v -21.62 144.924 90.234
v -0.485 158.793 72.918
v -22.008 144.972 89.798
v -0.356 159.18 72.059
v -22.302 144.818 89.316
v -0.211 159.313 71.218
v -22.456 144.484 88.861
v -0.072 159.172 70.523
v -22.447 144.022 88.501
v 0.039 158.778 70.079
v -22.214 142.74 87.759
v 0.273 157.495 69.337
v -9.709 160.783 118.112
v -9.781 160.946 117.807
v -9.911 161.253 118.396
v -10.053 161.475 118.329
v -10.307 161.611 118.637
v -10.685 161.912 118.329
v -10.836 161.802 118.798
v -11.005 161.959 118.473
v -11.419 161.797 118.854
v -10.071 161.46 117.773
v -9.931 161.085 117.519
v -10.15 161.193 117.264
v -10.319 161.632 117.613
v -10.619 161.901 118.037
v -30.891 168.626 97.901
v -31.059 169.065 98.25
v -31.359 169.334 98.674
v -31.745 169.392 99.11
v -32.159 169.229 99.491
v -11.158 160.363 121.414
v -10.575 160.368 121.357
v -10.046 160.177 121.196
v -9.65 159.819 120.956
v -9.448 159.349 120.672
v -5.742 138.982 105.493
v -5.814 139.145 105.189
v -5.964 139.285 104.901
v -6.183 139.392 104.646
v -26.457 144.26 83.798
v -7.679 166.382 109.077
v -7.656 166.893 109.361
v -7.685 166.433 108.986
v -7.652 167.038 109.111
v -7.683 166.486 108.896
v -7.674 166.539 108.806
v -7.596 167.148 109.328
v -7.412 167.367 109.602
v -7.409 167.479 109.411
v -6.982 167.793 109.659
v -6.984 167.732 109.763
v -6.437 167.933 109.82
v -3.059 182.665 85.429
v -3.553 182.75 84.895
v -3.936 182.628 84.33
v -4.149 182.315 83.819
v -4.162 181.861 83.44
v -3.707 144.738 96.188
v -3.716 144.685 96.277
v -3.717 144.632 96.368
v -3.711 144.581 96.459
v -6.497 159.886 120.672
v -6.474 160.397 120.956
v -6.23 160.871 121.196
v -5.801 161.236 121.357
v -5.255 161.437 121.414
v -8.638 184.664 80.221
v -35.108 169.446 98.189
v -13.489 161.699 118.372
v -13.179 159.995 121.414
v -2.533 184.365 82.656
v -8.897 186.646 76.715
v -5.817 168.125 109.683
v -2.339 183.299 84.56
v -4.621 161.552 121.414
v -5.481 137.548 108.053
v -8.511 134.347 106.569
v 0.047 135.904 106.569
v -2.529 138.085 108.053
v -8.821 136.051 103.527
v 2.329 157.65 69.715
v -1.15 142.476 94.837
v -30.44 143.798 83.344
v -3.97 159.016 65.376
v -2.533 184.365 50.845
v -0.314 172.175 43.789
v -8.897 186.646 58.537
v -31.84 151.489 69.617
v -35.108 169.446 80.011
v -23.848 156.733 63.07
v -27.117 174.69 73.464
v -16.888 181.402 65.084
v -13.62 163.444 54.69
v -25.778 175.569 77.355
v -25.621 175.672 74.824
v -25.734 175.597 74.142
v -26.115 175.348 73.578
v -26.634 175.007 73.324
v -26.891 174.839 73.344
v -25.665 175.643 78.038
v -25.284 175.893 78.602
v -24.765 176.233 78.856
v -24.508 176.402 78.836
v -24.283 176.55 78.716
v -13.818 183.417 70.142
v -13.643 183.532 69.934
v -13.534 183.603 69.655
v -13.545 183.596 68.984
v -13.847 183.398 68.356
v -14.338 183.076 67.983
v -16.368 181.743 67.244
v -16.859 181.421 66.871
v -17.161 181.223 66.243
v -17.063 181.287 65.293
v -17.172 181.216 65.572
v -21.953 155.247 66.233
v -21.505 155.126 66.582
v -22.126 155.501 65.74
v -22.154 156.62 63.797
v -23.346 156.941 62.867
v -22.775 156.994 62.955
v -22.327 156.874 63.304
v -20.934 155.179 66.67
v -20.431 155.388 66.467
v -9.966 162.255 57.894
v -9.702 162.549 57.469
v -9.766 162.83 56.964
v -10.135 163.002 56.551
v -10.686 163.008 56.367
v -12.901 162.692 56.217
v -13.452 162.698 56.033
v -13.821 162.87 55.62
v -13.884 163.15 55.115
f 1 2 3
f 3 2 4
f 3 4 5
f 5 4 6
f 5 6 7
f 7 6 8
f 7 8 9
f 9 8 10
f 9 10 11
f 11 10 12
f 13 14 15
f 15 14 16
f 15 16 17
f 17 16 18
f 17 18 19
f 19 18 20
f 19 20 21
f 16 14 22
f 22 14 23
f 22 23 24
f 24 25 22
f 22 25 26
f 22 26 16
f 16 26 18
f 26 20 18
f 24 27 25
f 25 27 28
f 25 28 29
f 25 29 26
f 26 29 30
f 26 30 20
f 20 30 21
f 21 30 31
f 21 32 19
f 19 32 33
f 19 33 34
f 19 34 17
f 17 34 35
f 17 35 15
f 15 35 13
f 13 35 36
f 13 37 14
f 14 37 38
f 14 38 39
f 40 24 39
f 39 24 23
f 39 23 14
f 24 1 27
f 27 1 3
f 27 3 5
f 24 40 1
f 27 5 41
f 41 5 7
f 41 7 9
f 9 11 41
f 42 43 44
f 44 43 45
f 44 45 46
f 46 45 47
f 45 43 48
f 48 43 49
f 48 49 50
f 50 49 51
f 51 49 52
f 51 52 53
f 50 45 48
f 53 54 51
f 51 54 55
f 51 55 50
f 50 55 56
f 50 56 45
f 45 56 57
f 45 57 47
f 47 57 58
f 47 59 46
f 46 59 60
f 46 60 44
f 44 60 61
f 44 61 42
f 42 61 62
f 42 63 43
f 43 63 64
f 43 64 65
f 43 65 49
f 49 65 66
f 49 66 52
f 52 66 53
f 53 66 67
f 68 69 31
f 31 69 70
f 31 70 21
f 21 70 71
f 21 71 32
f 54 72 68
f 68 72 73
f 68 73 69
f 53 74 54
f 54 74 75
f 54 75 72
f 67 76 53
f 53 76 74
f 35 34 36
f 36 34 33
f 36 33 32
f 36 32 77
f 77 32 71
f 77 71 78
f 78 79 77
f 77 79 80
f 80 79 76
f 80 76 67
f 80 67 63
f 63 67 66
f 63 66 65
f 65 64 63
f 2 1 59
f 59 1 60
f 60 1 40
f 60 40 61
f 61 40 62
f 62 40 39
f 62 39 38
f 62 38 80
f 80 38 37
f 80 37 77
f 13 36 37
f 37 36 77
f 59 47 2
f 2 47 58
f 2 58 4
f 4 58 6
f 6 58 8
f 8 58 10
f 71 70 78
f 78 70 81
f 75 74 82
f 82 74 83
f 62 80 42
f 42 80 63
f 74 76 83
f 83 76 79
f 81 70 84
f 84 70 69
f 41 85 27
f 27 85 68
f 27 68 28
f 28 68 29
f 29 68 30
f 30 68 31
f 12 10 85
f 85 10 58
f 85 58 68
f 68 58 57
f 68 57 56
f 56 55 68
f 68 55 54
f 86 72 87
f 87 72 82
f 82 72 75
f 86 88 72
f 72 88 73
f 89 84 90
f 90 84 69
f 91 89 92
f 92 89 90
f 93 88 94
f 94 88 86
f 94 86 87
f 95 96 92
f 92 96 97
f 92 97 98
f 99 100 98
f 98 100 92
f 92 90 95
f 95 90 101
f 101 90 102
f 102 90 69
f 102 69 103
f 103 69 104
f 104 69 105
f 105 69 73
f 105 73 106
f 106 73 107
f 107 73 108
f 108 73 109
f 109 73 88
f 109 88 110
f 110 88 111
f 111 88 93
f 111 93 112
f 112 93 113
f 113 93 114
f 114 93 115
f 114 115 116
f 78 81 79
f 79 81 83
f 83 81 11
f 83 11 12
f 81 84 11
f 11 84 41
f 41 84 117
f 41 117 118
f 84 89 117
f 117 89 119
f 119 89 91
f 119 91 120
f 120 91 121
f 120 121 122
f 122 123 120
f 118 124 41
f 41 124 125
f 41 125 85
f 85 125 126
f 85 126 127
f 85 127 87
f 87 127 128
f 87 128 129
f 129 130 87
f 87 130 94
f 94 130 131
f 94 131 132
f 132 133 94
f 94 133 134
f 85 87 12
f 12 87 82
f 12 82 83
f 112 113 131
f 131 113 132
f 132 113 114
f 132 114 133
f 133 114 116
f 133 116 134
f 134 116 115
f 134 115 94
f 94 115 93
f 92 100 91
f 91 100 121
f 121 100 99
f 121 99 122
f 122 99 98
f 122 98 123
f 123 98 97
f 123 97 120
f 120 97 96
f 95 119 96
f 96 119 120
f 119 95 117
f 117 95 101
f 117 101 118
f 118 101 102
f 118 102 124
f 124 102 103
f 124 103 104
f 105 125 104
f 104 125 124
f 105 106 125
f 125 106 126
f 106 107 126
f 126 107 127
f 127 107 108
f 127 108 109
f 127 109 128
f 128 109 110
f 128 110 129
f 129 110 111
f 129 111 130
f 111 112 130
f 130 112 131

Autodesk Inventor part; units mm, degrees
sketch3d "3D Sketch1"
ref_plane "Work Plane1" through (-0.0056, 14.7303, 11.9873) normal (-1, 0, 0) x (0, 0, -1)
ref_plane "Work Plane2" through (-2.9108, 16.1551, 9.4021) normal (-0.7071068, 0.2534044, -0.6601411) x (0.1555934, -0.854939, -0.4948434)
sketch "Sketch2" plane through (-2.9108, 16.1551, 9.4021) normal (-0.7071068, 0.2534044, -0.6601411) x (0.1555934, -0.854939, -0.4948434)
  line L0 (-180, 0) -> (0, 0)
  line L1 (0, 0) -> (0, -32)
  line L2 (0, -32) -> (-180, -32)
  line L3 (-180, -32) -> (-180, 0)
  line L4 (3, -35) -> (-180, -35)
  line L5 (-180, -35) -> (-180, 3)
  line L6 (-180, 3) -> (3, 3)
  line L7 (3, 3) -> (3, -35)
  line L8 (-180, 0.3) -> (0.2, 0.3)
  line L9 (0.2, 0.3) -> (0.2, -32.3)
  line L10 (0.2, -32.3) -> (-180, -32.3)
  line L11 (-180, -32.3) -> (-180, 0.3)
  point P0 (-180, 0)
  dimension "d1" = 180
  dimension "d2" = 32
  dimension "d5" = 3
  dimension "d6" = 3
  dimension "d7" = 3
  dimension "d13" = 0.2
  dimension "d14" = 0.3
  dimension "d15" = 0.3
extrude "Extrusion1" add sketch "Sketch2" along normal blind 3
extrude "Extrusion3" add sketch "Sketch2" against normal blind 6 contours L5 L6 L7 L4 L10 L9 L8
ref_plane "Work Plane3" through (19.5768, 30.1922, -13.8415) normal (0, 0, 1) x (1, 0, 0)
sketch "Sketch4" plane through (-3.0866, 15.8483, 9.4727) normal (-0.1555934, 0.854939, 0.4948434) x (0.7071068, -0.2534044, 0.6601411)
  line L0 (0, 0) -> (0, 32.6) projected
  line L1 (0, 0) -> (6, 0) projected
  line L2 (6, 32.6) -> (6, 0) projected
  line L3 (0, 32.6) -> (6, 32.6) projected
  line L4 (5, 32.6) -> (6, 32.0226)
  point P0 (-0.0547, 0.3088)
  dimension "d18" = 5
  dimension "d20" = 30
extrude "Extrusion4" [suppressed]
sketch "Sketch5" plane through (19.5768, 30.1922, -13.8415) normal (0, 0, 1) x (1, 0, 0)
  line L0 (-26.2115, -17.1996) -> (-54.6851, 139.2543) projected
  line L1 (-19.8475, -19.4802) -> (-26.2115, -17.1996) projected
  line L2 (-19.8475, -19.4802) -> (6.364, -2.2806) projected
  line L3 (6.364, -2.2806) -> (-22.1096, 154.1732) projected
  line L4 (-54.6851, 139.2543) -> (-28.4736, 156.4538) projected
  line L5 (-28.4736, 156.4538) -> (-22.1096, 154.1732) projected
  point P0 (-19.5768, -30.1922)
extrude "Extrusion5" add sketch "Sketch5" along normal up to next
sketch "Sketch6" plane through (-2.9108, 16.1551, 9.4021) normal (0.7071068, -0.2534044, 0.6601411) x (0.6897758, 0.4526207, -0.5651051)
  line L0 (13.5, 135.3) -> (29, 135.3)
  line L1 (13.5, 109.3) -> (13.5, 135.3)
  line L2 (11.5, 109.3) -> (13.5, 109.3)
  line L3 (11.5, 77.3) -> (11.5, 109.3)
  line L4 (9.5, 77.3) -> (11.5, 77.3)
  line L5 (9.5, 45.3) -> (9.5, 77.3)
  line L6 (6.25, 45.3) -> (9.5, 45.3)
  line L7 (6.25, 2.8) -> (6.25, 45.3)
  line L8 (29, 2.8) -> (6.25, 2.8)
  line L9 (29, 135.3) -> (29, 2.8)
  line L10 (32, 0) -> (32, 180) projected
  line L11 (0, 0) -> (32, 0) projected
  line L12 (32.3, 180) -> (32.3, -0.2) projected
  line L13 (32.3, -0.2) -> (29, -0.2)
  line L14 (29, -0.2) -> (29, 2.8)
  line L15 (29, 2.8) -> (32.3, 2.8)
  line L16 (32.3, 2.8) -> (32.3, -0.2)
  point P0 (0.0088, -18.9171)
  dimension "d25" = 3
  dimension "d26" = 3.3
sketch "Sketch8" plane through (19.5768, 30.1922, -13.8415) normal (0, 0, -1) x (-1, 0, 0)
  line L0 (0.1767, 0.4115) -> (28.2147, 154.4716) projected
  line L1 (50.7014, 139.7161) -> (28.2147, 154.4716) projected
  line L2 (50.7014, 139.7161) -> (22.6634, -14.3439) projected
  line L3 (22.6634, -14.3439) -> (0.1767, 0.4115) projected
  line L4 (18.6122, -8.8144) -> (25.2249, 27.5205) projected
  line L5 (2.9198, 1.4827) -> (18.6122, -8.8144) projected
  line L6 (23.5359, 114.7621) -> (2.9198, 1.4827) projected
  line L7 (25.2249, 27.5205) -> (22.9831, 28.9915) projected
  line L8 (22.9831, 28.9915) -> (27.9621, 56.3496) projected
  line L9 (26.5826, 57.2548) -> (31.5615, 84.6129) projected
  line L10 (27.9621, 56.3496) -> (26.5826, 57.2548) projected
  line L11 (30.182, 85.5181) -> (34.2274, 107.7465) projected
  line L12 (31.5615, 84.6129) -> (30.182, 85.5181) projected
  line L13 (34.2274, 107.7465) -> (23.5359, 114.7621) projected
  line L14 (26.6416, 26.5909) -> (9.5325, 37.8176)
  line L15 (9.5325, 37.8176) -> (7.338, 34.4733)
  line L16 (7.338, 34.4733) -> (24.4471, 23.2466)
  line L17 (24.4471, 23.2466) -> (26.6416, 26.5909)
  line L18 (29.3788, 55.42) -> (27.1843, 52.0757)
  line L19 (27.1843, 52.0757) -> (12.317, 61.8314)
  line L20 (12.317, 61.8314) -> (14.5115, 65.1757)
  line L21 (14.5115, 65.1757) -> (29.3788, 55.42)
  line L22 (32.9782, 83.6833) -> (30.7837, 80.339)
  line L23 (30.7837, 80.339) -> (17.296, 89.1894)
  line L24 (17.296, 89.1894) -> (19.4905, 92.5337)
  line L25 (19.4905, 92.5337) -> (32.9782, 83.6833)
  point P0 (19.5768, -30.1922)
  point P1 (18.7127, 88.2598)
  point P2 (13.7337, 60.9018)
  point P3 (8.7547, 33.5437)
  dimension "d27" = 4
  dimension "d28" = 4
  dimension "d29" = 4
extrude "Extrusion6" cut sketch "Sketch8" against normal through all contours L5 L6 L16 L4 | L14 L6 L19 L8 | L6 L23 L9 L21 | L6 L13 L11 L25
ref_plane "Work Plane4" through (-13.5174, 19.9562, -0.5) normal (0.7071068, -0.2534044, 0.6601411) x (0.6897758, 0.4526207, -0.5651051)
ref_plane "Work Plane6" through (-26.4567, 144.2602, 83.7981) normal (-0.1555934, 0.854939, 0.4948434) x (0.7071068, -0.2534044, 0.6601411)
split body "Split1" result two bodies by plane through (-26.4567, 144.2602, 83.7981) normal (-0.1555934, 0.854939, 0.4948434) first body at (-13.9482, 171.37, 41.9041)
split body "Split2" result two bodies by plane through (-13.5174, 19.9562, -0.5) normal (0.7071068, -0.2534044, 0.6601411) bodies 2 first body at (-22.4266, 166.4041, 87.2241)
sketch "Sketch9" plane through (-26.4567, 144.2602, 83.7981) normal (-0.1555934, 0.854939, 0.4948434) x (0.7071068, -0.2534044, 0.6601411)
  line L0 (-15, 7.5724) -> (-15, 45.5724) projected
  line L1 (-13.2929, 19.8653) -> (-11.7071, 18.2796)
  line L2 (-10, 18.9867) -> (-10, 34.1582)
  line L3 (-11.7071, 34.8653) -> (-13.2929, 33.2796)
  arc A0 (-11.7071, 18.2796) -> (-10, 18.9867) centre (-11, 18.9867) ccw
  arc A1 (-10, 34.1582) -> (-11.7071, 34.8653) centre (-11, 34.1582) ccw
  line L4 (-15, 7.5724) -> (-15, 45.5724) projected
  line L5 (-15, 7.5724) -> (-3, -2.7) projected
  line L6 (-3, -2.7) -> (-3, 35.3) projected
  line L7 (-15, 45.5724) -> (-3, 35.3) projected
  line L8 (-15, 45.5724) -> (-15, 53.2768) projected
  line L9 (-15, 45.5724) -> (-3, 35.3) projected
  line L10 (-3, 35.3) -> (6, 35.3) projected
  line L11 (-15, 53.2768) -> (6, 35.3) projected
  line L12 (0, 0) -> (0, 32.6) projected
  line L13 (0, 32.6) -> (6, 32.6) projected
  line L14 (6, 35.3) -> (6, 32.6) projected
  line L15 (-3, 35.3) -> (6, 35.3) projected
  line L16 (-3, -2.7) -> (-3, 35.3) projected
  line L17 (6, -2.7) -> (-3, -2.7) projected
  line L18 (6, 0) -> (6, -2.7) projected
  line L19 (0, 0) -> (6, 0) projected
  line L20 (-15, 45.5724) -> (-15, 53.2768) projected
  line L21 (-34.0212, 69.5596) -> (-15, 53.2768) projected
  line L22 (-15, 33.9867) -> (-15, 53.2768)
  line L23 (-15, 19.1582) -> (-15, 7.5724)
  arc A2 (-13.2929, 19.8653) -> (-15, 19.1582) centre (-14, 19.1582) ccw
  arc A3 (-15, 33.9867) -> (-13.2929, 33.2796) centre (-14, 33.9867) ccw
  line L24 (-15.3, 53.5336) -> (-15.3, 33.9867)
  arc A4 (-15.3, 33.9867) -> (-13.0808, 33.0674) centre (-14, 33.9867) ccw
  line L25 (-13.0808, 33.0674) -> (-11.495, 34.6532)
  arc A5 (-10.3, 34.1582) -> (-11.495, 34.6532) centre (-11, 34.1582) ccw
  line L26 (-10.3, 34.1582) -> (-10.3, 18.9867)
  arc A6 (-11.495, 18.4917) -> (-10.3, 18.9867) centre (-11, 18.9867) ccw
  line L27 (-11.495, 18.4917) -> (-13.0808, 20.0775)
  arc A7 (-13.0808, 20.0775) -> (-15.3, 19.1582) centre (-14, 19.1582) ccw
  line L28 (-15.3, 19.1582) -> (-15.3, 7.8293)
  line L29 (-43.0212, 31.5596) -> (-15, 7.5724) projected
  point P0 (-0.0547, 0.3088)
  point P1 (-15, 21.5724)
  point P2 (-10, 16.5724)
  point P3 (-10, 36.5724)
  point P4 (-15, 31.5724)
  point P5 (-15, 33.9867)
  point P6 (-15, 45.5724)
  point P7 (-15, 33.156)
  point P8 (-15, 19.9889)
  dimension "d35" = 45
  dimension "d36" = 45
  dimension "d37" = 20
  dimension "d38" = 5
  dimension "d40" = 10
  dimension "d41" = 38
  dimension "d42" = 14
  dimension "d47" = 1
  dimension "d48" = 1
  dimension "d49" = 0.3
extrude "Extrusion7" cut sketch "Sketch9" along normal through all contours L29 L28 A7 L0 | L0 A7 L27 A6 L26 A5 L25 A4 A3 L3 A1 L2 A0 L1 A2 | A4 L24 L21 L8 L0 bodies 4 5
sketch "Sketch11" plane through (-26.4567, 144.2602, 83.7981) normal (-0.1555934, 0.854939, 0.4948434) x (0.7071068, -0.2534044, 0.6601411)
  line L0 (34.4958, 0.0029) -> (24.2403, 8.7821)
  line L1 (24.2403, 8.7821) -> (25.6343, 10.4105)
  line L2 (25.6343, 10.4105) -> (35.8898, 1.6314)
  line L3 (35.8898, 1.6314) -> (34.4958, 0.0029)
  line L4 (32.5449, -2.2761) -> (29.886, 0)
  line L5 (29.886, 0) -> (27.5747, -2.7)
  line L6 (27.5747, -2.7) -> (30.2336, -4.9761)
  line L7 (30.2336, -4.9761) -> (32.5449, -2.2761)
  line L8 (34.4958, 0.0029) -> (32.5449, -2.2761)
  line L9 (-11.495, 18.4917) -> (-13.0808, 20.0775) projected
  arc A0 (-15, 19.9889) -> (-15.3, 19.1582) centre (-14, 19.1582) ccw projected
  line L10 (-15, 33.156) -> (-15, 19.9889) projected
  arc A1 (-15.3, 33.9867) -> (-15, 33.156) centre (-14, 33.9867) ccw projected
  line L11 (-13.0808, 33.0674) -> (-11.495, 34.6532) projected
  arc A2 (-10.3, 34.1582) -> (-11.495, 34.6532) centre (-11, 34.1582) ccw projected
  line L12 (-10.3, 34.1582) -> (-10.3, 18.9867) projected
  arc A3 (-11.495, 18.4917) -> (-10.3, 18.9867) centre (-11, 18.9867) ccw projected
  line L13 (6, -2.7) -> (-3, -2.7) projected
  line L14 (-3, -2.7) -> (-43.0212, 31.5596) projected
  line L15 (-15, 7.5724) -> (-15, 19.1582) projected
  arc A4 (-13.2929, 19.8653) -> (-15, 19.1582) centre (-14, 19.1582) ccw projected
  line L16 (-13.2929, 19.8653) -> (-11.7071, 18.2796) projected
  arc A5 (-11.7071, 18.2796) -> (-10, 18.9867) centre (-11, 18.9867) ccw projected
  line L17 (-10, 18.9867) -> (-10, 34.1582) projected
  arc A6 (-10, 34.1582) -> (-11.7071, 34.8653) centre (-11, 34.1582) ccw projected
  line L18 (-11.7071, 34.8653) -> (-13.2929, 33.2796) projected
  arc A7 (-15, 33.9867) -> (-13.2929, 33.2796) centre (-14, 33.9867) ccw projected
  line L19 (-15, 33.9867) -> (-15, 53.2768) projected
  line L20 (-34.0212, 69.5596) -> (6, 35.3) projected
  line L21 (6, 35.3) -> (6, 32.6) projected
  line L22 (6, 32.6) -> (0, 32.6) projected
  line L23 (0, 32.6) -> (0, 0) projected
  line L24 (0, 0) -> (6, 0) projected
  line L25 (6, 0) -> (6, -2.7) projected
  line L26 (-15.3, 19.1582) -> (-15.3, 7.8293) projected
  line L27 (-15.3, 53.5336) -> (-15.3, 33.9867) projected
  line L28 (-3, 35.3) -> (6, 35.3) projected
  line L29 (0, 32.6) -> (6, 32.6) projected
  line L30 (0, 0) -> (0, 32.6) projected
  line L31 (-3, -2.7) -> (-3, 35.3) projected
  line L32 (6, 35.3) -> (6, 32.6) projected
  line L33 (6, -2.7) -> (-3, -2.7) projected
  line L34 (6, 0) -> (6, -2.7) projected
  line L35 (0, 0) -> (6, 0) projected
  line L36 (6, 35.3) -> (6, 32.6) projected
  line L37 (-15.3, 53.5336) -> (6, 35.3) projected
  line L38 (-15, 53.2768) -> (6, 35.3) projected
  line L39 (24.2403, 8.7821) -> (25.905, 10.057)
  line L40 (25.905, 10.057) -> (7.6648, 33.8749)
  line L41 (7.6648, 33.8749) -> (6, 32.6)
  line L42 (6, 32.6) -> (24.2403, 8.7821)
  line L43 (6, 35.3) -> (7.6648, 33.8749)
  line L44 (6, -2.7) -> (27.5747, -2.7)
  line L45 (6, 0) -> (29.886, 0)
  line L46 (24.2403, 8.7821) -> (6, 24.3964) construction
  line L47 (6, 32.6) -> (6, 0) construction
  line L48 (6, 35.3) -> (6, 32.6)
  line L49 (6, 0) -> (6, -2.7) projected
  line L50 (6, 0) -> (6, -2.7)
  line L51 (6, 35.3) -> (6, 32.6) projected
  arc A8 (-13.0808, 20.0775) -> (-15, 19.9889) centre (-14, 19.1582) ccw projected
  arc A9 (-15, 33.156) -> (-13.0808, 33.0674) centre (-14, 33.9867) ccw projected
  line L52 (-15.3, 7.8293) -> (-43.0212, 31.5596) projected
  line L53 (-34.0212, 69.5596) -> (-15.3, 53.5336) projected
  line L54 (-43.0212, 31.5596) -> (-43.0212, 69.5596) projected
  line L55 (-43.0212, 69.5596) -> (-34.0212, 69.5596) projected
  point P0 (-0.0547, 0.3088)
  dimension "d63" = 3
  dimension "d64" = 3.5
  dimension "d65" = 13.5
  dimension "d66" = 30
  dimension "d67" = 24.0107
extrude "Extrusion8" add sketch "Sketch11" along normal up to surface (30 mm away) contours L0 L39 L40 L2 L3 | L42 L41 L40 L1 | L1 L40 L39 | L7 L6 L5 L4 | L21 L43 L41 | L5 L44 L25 L45 bodies 4
sketch "Sketch12" plane through (-3.97, 159.0156, 65.3757) normal (0.1555934, -0.854939, -0.4948434) x (0.7071068, -0.2534044, 0.6601411)
  arc A0 (-15, 13.4418) -> (-13.2929, 12.7347) centre (-14, 13.4418) ccw projected
  line L0 (-13.2929, 12.7347) -> (-11.7071, 14.3204) projected
  arc A1 (-10, 13.6133) -> (-11.7071, 14.3204) centre (-11, 13.6133) ccw projected
  line L1 (-10, 13.6133) -> (-10, -1.5582) projected
  arc A2 (-11.7071, -2.2653) -> (-10, -1.5582) centre (-11, -1.5582) ccw projected
  line L2 (-11.7071, -2.2653) -> (-13.2929, -0.6796) projected
  arc A3 (-13.2929, -0.6796) -> (-15, -1.3867) centre (-14, -1.3867) ccw projected
  line L3 (-15, -20.6768) -> (-15, -1.3867) projected
  line L4 (-15, -20.6768) -> (7.6648, -1.2749) projected
  line L5 (25.6343, 22.1895) -> (7.6648, -1.2749) projected
  line L6 (35.8898, 30.9686) -> (25.6343, 22.1895) projected
  line L7 (34.4958, 32.5971) -> (35.8898, 30.9686) projected
  line L8 (24.2403, 23.8179) -> (34.4958, 32.5971) projected
  line L9 (6, 0) -> (24.2403, 23.8179) projected
  line L10 (6, 0) -> (0, 0) projected
  line L11 (0, 0) -> (0, 32.6) projected
  line L12 (0, 32.6) -> (29.886, 32.6) projected
  line L13 (32.5449, 34.8761) -> (29.886, 32.6) projected
  line L14 (30.2336, 37.5761) -> (32.5449, 34.8761) projected
  line L15 (27.5747, 35.3) -> (30.2336, 37.5761) projected
  line L16 (27.5747, 35.3) -> (-3, 35.3) projected
  line L17 (-3, 35.3) -> (-15, 25.0276) projected
  line L18 (-15, 13.4418) -> (-15, 25.0276) projected
  line L19 (30.2336, 37.5761) -> (35.8898, 30.9686)
  line L20 (6, 0) -> (6, 32.6)
  point P0 (-0.0547, 32.2912)
  point P1 (34.4958, 32.5971)
  point P2 (32.5449, 34.8761)
  point P3 (34.4958, 32.5971)
  point P4 (32.5449, 34.8761)
extrude "Extrusion9" add sketch "Sketch12" against normal blind 3 contours L19 L8 L9 L20 L12 L13 bodies 4
combine bodies "Combine2" operation type add bodies to combine 5 3
fillet "Fillet1" radius 1.5 7 edges at (-7.3283, 164.4545, 115.5483) (-9.8368, 161.4831, 119.8932) (-20.5582, 166.1217, 108.508) (-7.8914, 150.7934, 111.6921) (-5.8259, 156.199, 103.0022) (-6.1608, 175.442, 96.9323) (-11.4375, 152.6823, 80.0323)
delete faces "Delete Face1" heal no whole lump yes faces at (-24.2286, 169.0466, 72.7125)
delete faces "Delete Face2" heal no whole lump yes faces at (-28.8209, 166.9431, 71.8608)
equation "\"d15\" = d14"
equation "\"d28\" = d27"
equation "\"d29\" = d28"
equation "\"d42\" = -0.5 * d40 + 0.5 * d41"
equation "\"d49\" = doveTailTolerance"
equation "\"doveTailTolerance\" = 0.3"
properties part number "coinDropper"
